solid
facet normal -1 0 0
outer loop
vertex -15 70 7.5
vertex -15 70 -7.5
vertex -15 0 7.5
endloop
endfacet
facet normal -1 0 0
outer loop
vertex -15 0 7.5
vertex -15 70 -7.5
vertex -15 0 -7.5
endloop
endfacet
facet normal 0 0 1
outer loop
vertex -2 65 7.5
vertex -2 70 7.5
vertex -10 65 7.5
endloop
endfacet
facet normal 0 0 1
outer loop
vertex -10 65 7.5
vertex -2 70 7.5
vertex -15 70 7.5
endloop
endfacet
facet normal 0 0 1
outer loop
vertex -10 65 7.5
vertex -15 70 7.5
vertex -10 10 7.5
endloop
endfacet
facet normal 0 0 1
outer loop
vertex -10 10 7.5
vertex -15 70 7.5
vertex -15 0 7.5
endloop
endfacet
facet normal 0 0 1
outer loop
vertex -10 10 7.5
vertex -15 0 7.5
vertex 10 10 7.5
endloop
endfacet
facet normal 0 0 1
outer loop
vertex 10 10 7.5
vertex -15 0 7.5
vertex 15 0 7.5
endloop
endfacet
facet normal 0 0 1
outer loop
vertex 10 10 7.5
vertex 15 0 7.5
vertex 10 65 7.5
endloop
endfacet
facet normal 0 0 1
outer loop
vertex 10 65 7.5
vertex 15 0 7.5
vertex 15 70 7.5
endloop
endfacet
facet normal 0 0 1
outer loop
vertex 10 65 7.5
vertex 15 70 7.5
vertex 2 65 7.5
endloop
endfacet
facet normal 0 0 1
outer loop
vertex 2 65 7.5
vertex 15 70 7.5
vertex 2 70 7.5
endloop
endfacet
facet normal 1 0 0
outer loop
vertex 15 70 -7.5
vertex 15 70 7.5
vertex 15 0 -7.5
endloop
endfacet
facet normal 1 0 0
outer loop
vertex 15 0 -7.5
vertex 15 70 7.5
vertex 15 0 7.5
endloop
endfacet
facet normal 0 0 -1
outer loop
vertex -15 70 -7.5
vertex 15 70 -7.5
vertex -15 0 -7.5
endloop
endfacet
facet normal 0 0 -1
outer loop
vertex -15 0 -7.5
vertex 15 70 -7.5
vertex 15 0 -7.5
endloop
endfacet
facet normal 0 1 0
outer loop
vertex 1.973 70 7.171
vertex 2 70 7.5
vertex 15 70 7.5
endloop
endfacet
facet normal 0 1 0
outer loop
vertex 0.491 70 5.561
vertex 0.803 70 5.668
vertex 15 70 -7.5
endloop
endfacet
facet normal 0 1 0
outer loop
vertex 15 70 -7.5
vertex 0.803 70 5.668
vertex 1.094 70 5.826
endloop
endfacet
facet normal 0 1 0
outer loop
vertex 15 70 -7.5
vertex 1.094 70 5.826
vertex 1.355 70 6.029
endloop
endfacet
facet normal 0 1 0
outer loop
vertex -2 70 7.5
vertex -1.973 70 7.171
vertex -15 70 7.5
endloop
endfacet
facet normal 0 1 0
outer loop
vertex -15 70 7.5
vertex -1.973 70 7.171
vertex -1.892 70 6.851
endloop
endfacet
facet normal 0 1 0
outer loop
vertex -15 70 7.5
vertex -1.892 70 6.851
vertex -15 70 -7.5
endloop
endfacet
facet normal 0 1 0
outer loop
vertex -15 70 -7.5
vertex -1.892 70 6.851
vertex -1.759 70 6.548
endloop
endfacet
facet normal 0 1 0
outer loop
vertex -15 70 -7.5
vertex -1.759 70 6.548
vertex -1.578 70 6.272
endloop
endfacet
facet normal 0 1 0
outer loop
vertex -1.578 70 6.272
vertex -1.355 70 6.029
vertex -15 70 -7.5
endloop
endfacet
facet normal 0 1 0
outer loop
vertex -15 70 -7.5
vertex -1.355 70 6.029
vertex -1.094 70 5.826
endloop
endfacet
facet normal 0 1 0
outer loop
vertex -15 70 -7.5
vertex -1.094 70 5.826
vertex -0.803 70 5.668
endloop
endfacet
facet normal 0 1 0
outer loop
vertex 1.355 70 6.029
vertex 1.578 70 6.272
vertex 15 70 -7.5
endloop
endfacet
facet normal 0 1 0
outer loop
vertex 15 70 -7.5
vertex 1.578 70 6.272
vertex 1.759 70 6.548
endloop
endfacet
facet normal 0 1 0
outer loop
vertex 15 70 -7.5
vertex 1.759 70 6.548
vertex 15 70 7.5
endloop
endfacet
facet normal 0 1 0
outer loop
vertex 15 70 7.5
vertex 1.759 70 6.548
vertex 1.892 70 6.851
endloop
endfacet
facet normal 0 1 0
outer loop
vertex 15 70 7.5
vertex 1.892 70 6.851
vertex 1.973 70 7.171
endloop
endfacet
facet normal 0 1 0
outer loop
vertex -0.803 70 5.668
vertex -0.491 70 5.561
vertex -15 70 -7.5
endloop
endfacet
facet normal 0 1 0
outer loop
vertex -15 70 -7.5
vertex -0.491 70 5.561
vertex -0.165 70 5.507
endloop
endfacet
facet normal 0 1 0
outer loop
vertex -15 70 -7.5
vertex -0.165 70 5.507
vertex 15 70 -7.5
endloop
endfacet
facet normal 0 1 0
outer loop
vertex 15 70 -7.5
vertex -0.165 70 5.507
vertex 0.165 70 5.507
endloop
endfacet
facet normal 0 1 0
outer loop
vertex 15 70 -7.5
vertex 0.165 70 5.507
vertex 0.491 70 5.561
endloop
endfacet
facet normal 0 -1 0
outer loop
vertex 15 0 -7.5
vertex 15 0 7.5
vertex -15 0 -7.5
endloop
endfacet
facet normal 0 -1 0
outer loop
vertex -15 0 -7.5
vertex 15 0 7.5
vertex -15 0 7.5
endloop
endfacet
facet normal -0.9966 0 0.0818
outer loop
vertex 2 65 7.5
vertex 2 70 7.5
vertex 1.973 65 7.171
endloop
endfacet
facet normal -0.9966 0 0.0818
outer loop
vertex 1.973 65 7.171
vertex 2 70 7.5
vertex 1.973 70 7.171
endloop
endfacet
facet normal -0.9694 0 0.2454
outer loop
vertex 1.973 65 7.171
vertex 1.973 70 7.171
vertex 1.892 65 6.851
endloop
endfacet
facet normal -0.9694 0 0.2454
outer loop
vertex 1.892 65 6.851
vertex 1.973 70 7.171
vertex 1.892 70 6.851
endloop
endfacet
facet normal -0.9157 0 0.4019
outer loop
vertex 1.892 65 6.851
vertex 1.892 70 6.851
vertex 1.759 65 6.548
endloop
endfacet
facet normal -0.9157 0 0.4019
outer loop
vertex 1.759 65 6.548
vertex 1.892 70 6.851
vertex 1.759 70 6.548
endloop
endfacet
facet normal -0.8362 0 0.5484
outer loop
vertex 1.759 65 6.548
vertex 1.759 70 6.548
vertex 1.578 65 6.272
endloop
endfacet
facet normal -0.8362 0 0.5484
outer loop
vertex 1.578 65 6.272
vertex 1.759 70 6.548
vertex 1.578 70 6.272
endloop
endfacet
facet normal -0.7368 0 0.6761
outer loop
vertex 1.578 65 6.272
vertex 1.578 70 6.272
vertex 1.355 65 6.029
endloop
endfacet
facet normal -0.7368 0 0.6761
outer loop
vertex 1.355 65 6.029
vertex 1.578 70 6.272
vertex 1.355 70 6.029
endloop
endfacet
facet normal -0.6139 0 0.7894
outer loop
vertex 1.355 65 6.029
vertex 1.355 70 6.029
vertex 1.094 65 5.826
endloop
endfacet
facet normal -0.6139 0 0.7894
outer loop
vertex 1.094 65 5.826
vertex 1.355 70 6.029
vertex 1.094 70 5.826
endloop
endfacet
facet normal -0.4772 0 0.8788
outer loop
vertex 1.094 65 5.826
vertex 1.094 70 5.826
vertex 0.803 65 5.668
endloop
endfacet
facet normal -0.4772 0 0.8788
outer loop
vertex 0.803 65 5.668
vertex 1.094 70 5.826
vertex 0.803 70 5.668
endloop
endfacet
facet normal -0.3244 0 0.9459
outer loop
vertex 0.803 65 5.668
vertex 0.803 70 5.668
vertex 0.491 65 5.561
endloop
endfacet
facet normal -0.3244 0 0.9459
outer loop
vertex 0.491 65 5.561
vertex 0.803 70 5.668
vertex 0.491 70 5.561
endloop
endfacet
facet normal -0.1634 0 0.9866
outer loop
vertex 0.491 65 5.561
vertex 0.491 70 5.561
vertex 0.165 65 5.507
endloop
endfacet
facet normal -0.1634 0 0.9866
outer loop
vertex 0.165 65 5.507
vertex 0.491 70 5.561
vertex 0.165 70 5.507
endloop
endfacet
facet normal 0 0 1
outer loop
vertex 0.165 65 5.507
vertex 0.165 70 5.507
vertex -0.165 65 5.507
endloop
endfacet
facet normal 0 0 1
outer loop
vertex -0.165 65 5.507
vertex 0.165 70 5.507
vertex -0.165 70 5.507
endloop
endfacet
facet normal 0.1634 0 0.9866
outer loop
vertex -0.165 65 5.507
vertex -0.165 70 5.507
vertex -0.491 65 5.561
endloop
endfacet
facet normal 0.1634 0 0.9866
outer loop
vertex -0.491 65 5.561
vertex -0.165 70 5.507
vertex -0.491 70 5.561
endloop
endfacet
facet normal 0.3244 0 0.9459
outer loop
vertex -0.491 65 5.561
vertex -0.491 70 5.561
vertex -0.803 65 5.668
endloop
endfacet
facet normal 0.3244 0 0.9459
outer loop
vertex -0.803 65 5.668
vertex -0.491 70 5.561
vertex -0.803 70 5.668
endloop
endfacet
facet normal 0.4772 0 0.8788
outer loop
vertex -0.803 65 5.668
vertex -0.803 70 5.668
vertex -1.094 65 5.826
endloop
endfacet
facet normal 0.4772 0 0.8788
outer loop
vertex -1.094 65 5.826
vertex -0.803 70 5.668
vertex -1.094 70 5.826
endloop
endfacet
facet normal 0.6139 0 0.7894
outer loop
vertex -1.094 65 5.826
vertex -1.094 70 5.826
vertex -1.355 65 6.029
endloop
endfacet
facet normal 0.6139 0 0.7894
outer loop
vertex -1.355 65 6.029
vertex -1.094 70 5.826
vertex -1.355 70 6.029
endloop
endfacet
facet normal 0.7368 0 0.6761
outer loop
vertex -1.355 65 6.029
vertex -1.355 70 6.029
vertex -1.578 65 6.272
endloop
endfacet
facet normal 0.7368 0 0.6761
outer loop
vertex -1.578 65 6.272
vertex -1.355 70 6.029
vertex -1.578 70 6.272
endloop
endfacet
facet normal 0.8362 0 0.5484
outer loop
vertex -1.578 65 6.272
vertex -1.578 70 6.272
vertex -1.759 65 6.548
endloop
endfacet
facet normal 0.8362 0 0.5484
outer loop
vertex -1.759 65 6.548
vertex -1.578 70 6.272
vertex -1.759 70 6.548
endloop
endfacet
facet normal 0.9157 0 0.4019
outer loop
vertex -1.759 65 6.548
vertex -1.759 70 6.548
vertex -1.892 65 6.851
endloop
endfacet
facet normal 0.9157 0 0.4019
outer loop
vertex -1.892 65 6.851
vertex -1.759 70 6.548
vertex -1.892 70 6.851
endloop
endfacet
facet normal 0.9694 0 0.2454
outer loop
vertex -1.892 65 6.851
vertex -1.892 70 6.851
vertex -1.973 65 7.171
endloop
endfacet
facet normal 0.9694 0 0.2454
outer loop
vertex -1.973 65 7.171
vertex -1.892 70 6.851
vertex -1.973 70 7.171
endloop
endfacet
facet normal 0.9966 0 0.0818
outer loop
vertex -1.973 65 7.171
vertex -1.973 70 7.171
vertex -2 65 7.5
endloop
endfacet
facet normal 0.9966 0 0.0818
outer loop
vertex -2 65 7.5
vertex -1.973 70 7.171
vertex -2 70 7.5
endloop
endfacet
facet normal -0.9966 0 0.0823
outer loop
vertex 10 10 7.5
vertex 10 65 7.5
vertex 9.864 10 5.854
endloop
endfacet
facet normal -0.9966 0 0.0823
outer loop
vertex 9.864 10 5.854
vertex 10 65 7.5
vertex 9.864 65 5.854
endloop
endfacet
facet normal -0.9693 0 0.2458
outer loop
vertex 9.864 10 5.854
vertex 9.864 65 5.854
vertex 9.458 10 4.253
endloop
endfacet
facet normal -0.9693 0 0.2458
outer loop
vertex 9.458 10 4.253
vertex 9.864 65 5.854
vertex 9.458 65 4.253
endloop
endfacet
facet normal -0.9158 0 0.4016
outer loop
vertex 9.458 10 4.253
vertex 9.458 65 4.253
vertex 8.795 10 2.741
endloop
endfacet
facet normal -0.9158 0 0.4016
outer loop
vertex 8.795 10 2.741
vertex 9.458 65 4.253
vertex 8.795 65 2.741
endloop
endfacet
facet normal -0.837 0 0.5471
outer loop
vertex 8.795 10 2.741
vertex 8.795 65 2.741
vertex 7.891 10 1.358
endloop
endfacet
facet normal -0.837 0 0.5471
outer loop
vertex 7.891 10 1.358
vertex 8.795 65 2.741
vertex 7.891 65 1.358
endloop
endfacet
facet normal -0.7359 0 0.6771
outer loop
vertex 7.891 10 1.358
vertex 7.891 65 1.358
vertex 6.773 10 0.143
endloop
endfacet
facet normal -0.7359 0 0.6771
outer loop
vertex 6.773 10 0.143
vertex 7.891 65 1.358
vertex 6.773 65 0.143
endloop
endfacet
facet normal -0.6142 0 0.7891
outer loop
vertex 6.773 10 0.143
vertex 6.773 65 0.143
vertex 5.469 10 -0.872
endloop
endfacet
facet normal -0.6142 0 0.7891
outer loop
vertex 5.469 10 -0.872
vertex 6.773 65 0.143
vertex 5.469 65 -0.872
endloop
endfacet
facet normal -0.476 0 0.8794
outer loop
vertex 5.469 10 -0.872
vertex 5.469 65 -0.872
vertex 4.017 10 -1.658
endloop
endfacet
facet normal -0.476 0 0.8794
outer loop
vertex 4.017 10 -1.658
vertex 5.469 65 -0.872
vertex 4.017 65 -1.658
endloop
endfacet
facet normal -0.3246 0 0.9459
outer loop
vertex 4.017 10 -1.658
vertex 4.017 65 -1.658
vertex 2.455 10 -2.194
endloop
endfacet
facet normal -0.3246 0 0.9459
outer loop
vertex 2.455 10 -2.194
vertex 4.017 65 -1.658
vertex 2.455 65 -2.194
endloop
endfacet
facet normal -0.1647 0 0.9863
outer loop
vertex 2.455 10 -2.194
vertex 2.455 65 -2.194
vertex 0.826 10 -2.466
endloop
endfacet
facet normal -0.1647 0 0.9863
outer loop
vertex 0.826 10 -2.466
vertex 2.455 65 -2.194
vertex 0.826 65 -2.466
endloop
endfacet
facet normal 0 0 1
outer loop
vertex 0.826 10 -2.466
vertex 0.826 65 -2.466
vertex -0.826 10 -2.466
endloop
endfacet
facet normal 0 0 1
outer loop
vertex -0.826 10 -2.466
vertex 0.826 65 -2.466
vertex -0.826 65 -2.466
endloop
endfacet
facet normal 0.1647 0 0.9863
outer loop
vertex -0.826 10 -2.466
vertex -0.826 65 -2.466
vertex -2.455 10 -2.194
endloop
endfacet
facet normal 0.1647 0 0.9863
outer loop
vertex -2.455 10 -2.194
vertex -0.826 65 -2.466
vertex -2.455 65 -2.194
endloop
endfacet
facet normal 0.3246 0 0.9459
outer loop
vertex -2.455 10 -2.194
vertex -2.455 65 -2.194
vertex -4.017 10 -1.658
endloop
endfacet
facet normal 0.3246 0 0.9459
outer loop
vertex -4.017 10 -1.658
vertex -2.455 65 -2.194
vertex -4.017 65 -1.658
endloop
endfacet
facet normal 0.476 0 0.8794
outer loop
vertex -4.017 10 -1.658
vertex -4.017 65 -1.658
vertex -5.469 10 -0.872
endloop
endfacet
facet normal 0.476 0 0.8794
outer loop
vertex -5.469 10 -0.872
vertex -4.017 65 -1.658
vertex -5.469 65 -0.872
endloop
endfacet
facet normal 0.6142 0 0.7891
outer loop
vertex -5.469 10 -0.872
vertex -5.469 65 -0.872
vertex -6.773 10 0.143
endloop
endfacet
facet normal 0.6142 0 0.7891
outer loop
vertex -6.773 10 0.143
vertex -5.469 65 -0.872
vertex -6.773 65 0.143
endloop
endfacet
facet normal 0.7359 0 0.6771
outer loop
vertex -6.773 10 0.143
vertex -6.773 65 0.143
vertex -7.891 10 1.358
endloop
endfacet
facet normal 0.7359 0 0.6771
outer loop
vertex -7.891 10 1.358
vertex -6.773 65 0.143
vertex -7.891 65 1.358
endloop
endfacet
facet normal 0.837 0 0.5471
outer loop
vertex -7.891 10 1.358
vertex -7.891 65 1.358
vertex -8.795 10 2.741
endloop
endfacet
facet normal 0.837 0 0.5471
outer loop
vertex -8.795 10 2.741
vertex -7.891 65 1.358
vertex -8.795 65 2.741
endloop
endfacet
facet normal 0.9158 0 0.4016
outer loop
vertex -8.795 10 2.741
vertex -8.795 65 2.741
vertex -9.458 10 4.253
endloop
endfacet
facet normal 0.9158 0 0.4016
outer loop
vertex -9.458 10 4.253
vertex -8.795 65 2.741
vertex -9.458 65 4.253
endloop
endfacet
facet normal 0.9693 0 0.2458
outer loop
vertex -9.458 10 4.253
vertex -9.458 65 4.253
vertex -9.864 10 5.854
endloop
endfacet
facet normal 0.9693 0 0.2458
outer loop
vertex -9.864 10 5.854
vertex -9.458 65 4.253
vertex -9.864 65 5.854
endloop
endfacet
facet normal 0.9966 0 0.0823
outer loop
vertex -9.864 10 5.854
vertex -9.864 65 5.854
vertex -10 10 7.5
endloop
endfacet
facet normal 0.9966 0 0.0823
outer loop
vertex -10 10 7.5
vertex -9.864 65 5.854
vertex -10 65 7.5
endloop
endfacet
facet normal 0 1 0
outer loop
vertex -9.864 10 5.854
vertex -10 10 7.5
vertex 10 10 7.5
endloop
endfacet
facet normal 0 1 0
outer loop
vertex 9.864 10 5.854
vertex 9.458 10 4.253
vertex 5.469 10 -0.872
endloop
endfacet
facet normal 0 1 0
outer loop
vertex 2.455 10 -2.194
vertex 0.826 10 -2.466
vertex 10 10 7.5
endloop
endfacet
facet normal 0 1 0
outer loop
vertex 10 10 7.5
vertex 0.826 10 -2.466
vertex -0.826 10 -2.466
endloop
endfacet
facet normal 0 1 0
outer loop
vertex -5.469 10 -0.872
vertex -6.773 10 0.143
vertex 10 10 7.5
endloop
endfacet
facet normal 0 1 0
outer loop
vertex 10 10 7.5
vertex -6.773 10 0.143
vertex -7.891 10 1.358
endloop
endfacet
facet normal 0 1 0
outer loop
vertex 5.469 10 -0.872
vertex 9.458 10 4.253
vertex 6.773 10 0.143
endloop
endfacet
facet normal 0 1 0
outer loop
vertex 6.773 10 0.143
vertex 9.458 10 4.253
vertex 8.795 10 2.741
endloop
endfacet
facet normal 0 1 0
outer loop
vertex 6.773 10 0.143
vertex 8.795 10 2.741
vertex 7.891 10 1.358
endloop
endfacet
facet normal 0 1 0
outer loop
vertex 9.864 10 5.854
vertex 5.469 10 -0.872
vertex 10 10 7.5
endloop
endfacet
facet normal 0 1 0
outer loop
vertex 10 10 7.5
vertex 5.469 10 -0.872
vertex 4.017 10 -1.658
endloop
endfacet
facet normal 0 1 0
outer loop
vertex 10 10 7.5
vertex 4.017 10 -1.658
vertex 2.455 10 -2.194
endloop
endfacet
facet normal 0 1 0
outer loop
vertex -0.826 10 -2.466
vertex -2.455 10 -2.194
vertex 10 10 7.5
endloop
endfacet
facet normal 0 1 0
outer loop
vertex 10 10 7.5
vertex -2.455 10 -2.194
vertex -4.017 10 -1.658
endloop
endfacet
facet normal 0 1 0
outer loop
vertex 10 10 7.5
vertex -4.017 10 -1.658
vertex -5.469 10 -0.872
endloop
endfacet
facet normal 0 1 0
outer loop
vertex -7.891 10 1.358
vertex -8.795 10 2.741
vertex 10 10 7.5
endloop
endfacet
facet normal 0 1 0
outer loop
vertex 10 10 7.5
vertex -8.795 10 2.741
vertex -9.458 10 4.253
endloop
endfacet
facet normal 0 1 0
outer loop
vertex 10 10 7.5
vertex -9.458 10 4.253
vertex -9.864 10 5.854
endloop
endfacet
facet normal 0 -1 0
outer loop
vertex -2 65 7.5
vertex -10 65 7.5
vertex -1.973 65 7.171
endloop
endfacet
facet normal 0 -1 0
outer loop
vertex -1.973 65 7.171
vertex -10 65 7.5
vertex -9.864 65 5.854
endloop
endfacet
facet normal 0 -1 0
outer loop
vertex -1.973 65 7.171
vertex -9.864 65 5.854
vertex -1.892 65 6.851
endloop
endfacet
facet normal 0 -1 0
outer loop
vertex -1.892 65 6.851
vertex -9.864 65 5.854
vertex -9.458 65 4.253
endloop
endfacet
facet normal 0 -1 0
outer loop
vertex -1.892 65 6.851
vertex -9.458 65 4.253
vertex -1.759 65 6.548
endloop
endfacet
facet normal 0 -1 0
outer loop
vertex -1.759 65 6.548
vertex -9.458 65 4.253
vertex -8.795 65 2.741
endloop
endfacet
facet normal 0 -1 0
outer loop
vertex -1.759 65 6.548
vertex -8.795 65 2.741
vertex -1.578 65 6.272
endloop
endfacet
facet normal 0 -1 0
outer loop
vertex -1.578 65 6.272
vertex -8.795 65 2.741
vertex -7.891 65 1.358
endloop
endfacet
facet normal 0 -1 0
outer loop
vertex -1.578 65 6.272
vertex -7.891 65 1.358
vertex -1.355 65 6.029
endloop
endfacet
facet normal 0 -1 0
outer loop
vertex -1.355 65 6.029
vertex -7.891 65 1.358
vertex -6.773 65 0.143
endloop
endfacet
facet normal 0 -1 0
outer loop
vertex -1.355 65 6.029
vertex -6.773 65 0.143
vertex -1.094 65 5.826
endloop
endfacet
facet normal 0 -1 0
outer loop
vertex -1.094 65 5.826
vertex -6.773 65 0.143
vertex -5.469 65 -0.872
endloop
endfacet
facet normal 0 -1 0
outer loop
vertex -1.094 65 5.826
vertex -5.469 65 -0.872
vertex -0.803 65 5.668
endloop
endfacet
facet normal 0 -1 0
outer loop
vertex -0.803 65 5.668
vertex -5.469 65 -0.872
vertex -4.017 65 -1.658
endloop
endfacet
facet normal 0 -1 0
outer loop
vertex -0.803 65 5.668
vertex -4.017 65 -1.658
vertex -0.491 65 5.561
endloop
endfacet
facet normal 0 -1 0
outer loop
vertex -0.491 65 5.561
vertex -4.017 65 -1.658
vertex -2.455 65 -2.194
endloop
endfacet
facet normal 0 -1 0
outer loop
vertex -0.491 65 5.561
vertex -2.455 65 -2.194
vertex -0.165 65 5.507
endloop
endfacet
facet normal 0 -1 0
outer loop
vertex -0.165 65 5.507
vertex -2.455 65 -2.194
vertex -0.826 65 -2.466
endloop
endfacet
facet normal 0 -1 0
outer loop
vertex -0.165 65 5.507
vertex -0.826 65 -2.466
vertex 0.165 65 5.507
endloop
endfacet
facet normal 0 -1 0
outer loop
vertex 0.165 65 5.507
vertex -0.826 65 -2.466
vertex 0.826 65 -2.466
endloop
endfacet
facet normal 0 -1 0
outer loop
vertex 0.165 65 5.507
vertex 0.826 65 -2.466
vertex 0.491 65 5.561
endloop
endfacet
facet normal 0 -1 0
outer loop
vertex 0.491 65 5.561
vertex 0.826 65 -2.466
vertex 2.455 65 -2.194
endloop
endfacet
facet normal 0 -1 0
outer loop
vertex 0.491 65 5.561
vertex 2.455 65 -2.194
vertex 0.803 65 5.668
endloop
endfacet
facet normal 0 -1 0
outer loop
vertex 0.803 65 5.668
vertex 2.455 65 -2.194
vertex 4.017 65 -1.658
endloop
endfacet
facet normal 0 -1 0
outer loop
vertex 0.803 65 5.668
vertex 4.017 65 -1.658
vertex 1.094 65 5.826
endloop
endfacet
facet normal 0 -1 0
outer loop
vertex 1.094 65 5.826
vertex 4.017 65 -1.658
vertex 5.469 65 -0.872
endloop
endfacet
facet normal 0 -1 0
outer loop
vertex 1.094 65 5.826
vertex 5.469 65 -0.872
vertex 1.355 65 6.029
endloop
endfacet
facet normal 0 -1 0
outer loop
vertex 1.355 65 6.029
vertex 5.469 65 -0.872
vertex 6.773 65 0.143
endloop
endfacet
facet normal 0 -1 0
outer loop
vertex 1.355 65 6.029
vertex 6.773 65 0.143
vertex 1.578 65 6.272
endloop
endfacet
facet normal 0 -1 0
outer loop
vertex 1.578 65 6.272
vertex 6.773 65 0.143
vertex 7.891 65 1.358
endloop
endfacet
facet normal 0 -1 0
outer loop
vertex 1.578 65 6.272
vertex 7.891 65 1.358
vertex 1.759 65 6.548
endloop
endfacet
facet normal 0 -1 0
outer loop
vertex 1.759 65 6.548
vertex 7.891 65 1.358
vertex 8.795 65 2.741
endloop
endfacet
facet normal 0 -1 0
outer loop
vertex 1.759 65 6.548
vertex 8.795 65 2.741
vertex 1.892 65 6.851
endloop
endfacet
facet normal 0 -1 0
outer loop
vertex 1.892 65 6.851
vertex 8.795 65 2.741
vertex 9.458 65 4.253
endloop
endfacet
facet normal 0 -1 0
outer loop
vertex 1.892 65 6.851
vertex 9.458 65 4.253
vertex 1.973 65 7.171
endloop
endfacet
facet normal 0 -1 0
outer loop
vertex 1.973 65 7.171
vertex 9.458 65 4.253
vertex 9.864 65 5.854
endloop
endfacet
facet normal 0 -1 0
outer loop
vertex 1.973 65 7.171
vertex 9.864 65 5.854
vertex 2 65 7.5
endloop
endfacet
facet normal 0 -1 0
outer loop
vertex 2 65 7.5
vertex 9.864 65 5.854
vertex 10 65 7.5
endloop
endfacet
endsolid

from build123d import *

# Parameters (mm, degrees)
SKETCH1_W           = 30
SKETCH1_H           = 15
BOSS_EXTRUDE1_DEPTH = 70
SKETCH2_R           = 2
CUT_EXTRUDE1_DEPTH  = 5
CUT_EXTRUDE2_START  = -5
SKETCH3_R           = 10
CUT_EXTRUDE2_DEPTH  = 55


with BuildPart() as part:
    # Sketch1 → Boss-Extrude1 (new body)
    with BuildSketch(Plane(origin=(0, 0, 0), x_dir=(1, 0, 0), z_dir=(0, 1, 0))):
        Rectangle(SKETCH1_W, SKETCH1_H)
    extrude(amount=BOSS_EXTRUDE1_DEPTH)

    # Sketch2 → Cut-Extrude1 (cut)
    with BuildSketch(Plane(origin=(0, 70, 0), x_dir=(1, 0, 0), z_dir=(0, 1, 0))):
        with Locations((0, -7.5)):
            Circle(SKETCH2_R)
    extrude(amount=-CUT_EXTRUDE1_DEPTH, mode=Mode.SUBTRACT)

    # Sketch3 → Cut-Extrude2 (cut)
    with BuildSketch(Plane(origin=(0, 70, 0), x_dir=(1, 0, 0), z_dir=(0, 1, 0)).offset(CUT_EXTRUDE2_START)):
        with Locations((0, -7.5)):
            Circle(SKETCH3_R)
    extrude(amount=-CUT_EXTRUDE2_DEPTH, mode=Mode.SUBTRACT)


solid = part.part
